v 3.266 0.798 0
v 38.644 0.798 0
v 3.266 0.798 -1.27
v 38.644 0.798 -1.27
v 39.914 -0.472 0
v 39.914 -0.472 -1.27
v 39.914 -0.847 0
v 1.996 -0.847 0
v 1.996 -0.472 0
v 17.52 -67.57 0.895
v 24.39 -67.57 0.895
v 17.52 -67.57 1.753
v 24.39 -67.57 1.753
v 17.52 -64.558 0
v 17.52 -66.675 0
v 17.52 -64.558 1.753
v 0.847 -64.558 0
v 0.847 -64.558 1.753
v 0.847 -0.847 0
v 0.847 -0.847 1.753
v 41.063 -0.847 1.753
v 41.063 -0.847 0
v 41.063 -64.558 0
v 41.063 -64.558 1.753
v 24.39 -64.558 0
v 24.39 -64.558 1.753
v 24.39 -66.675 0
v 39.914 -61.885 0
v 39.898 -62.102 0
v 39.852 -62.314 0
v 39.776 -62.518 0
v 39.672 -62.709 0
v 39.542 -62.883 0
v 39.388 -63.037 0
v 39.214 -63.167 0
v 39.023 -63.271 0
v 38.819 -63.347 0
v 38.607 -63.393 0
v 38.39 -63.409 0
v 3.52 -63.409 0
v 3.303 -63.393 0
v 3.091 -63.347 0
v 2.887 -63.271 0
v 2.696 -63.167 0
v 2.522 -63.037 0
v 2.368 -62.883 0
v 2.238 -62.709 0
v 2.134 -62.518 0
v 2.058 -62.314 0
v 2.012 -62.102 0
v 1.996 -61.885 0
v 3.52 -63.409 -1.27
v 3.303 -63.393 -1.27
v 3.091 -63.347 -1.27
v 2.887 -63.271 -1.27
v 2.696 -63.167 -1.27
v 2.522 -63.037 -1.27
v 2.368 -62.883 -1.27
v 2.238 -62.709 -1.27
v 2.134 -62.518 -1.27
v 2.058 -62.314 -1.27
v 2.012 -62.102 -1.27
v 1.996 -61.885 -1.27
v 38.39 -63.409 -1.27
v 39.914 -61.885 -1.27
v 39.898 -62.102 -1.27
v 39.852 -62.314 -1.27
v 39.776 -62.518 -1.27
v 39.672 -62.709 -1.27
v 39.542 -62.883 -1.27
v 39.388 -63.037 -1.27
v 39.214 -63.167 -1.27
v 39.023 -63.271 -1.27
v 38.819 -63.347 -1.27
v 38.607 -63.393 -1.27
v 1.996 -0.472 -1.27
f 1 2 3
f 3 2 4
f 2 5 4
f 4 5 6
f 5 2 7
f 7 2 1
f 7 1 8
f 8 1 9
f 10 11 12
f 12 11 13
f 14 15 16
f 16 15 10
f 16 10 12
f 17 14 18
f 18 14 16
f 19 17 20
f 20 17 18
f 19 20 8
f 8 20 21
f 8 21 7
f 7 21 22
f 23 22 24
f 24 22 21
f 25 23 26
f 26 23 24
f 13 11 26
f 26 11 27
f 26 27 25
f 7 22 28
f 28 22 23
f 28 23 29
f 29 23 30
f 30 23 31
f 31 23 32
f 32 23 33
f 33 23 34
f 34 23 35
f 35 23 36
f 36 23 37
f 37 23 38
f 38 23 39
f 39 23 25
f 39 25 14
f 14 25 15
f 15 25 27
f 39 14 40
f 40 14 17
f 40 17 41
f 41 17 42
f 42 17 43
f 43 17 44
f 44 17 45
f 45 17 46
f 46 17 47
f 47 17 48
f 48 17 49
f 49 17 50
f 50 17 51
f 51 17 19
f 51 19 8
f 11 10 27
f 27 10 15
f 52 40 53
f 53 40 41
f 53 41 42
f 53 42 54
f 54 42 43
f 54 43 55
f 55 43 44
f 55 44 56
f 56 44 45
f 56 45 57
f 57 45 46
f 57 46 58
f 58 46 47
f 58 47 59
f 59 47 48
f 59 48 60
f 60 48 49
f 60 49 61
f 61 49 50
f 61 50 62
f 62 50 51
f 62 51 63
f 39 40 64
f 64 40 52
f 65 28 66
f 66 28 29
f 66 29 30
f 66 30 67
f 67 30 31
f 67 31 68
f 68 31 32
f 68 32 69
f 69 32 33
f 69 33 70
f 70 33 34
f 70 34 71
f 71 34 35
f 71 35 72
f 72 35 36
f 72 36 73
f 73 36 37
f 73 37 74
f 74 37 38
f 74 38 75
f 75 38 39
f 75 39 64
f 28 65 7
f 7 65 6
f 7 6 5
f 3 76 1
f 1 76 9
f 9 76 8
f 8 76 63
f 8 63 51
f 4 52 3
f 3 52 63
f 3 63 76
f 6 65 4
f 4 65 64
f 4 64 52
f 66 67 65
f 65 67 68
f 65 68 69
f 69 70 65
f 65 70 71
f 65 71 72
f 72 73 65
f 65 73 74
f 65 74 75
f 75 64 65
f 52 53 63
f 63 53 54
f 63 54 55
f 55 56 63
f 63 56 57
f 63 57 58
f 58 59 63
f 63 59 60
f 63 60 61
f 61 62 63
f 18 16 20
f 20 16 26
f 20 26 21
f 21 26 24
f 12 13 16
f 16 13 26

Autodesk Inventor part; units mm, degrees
ref_plane "YZ Plane" through (0, 0, 0) normal (1, 0, 0) x (0, 1, 0)
ref_plane "XZ Plane" through (0, 0, 0) normal (0, 1, 0) x (-1, 0, 0)
ref_plane "XY Plane" through (0, 0, 0) normal (0, 0, 1) x (1, 0, 0)
sketch "Sketch1" plane through (0, 0, 0) normal (0, 0, 1) x (1, 0, 0)
  line L0 (24.765, -64.933) -> (24.765, -65.405)
  line L1 (41.91, -65.405) -> (24.765, -65.405)
  line L2 (41.91, 0) -> (41.91, -65.405)
  line L3 (0, 0) -> (41.91, 0)
  line L4 (0, -65.405) -> (0, 0)
  line L5 (17.145, -65.405) -> (0, -65.405)
  line L6 (17.145, -65.405) -> (17.145, -64.933)
  line L7 (17.145, -64.933) -> (0.472, -64.933)
  line L8 (0.472, -64.933) -> (0.472, -0.472)
  line L9 (0.472, -0.472) -> (41.438, -0.472)
  line L10 (41.438, -0.472) -> (41.438, -64.933)
  line L11 (41.438, -64.933) -> (24.765, -64.933)
  line L12 (17.145, -64.933) -> (17.145, -63.6597)
  line L13 (17.145, -63.6597) -> (3.0153, -63.6597)
  arc A0 (1.7453, -62.3897) -> (3.0153, -63.6597) centre (3.0153, -62.3897) ccw
  line L14 (1.7453, -62.3897) -> (1.7453, -10.7786)
  arc A1 (1.7453, -10.7786) -> (0.472, -9.5086) centre (0.4753, -10.7786) ccw
  line L15 (0.472, -64.933) -> (0.472, -9.5086)
  line L16 (17.145, -64.933) -> (0.472, -64.933)
  line L17 (24.765, -63.6597) -> (24.765, -64.933)
  line L18 (41.438, -64.933) -> (24.765, -64.933)
  line L19 (41.438, -9.5086) -> (41.438, -64.933)
  arc A2 (41.438, -9.5086) -> (40.1647, -10.7786) centre (41.4347, -10.7786) ccw
  line L20 (40.1647, -10.7786) -> (40.1647, -62.3897)
  arc A3 (38.8947, -63.6597) -> (40.1647, -62.3897) centre (38.8947, -62.3897) ccw
  line L21 (38.8947, -63.6597) -> (24.765, -63.6597)
  line L22 (24.765, -67.945) -> (17.145, -67.945)
  line L23 (24.765, -63.6597) -> (24.765, -67.945)
  line L24 (17.145, -63.6597) -> (24.765, -63.6597)
  line L25 (17.145, -67.945) -> (17.145, -63.6597)
  point P0 (4.318, 23.368)
extrude "Extrusion1" add sketch "Sketch1" along normal blind 1.7526 contours L17 L21 A3 L20 A2 L10 L11 | L0 L23 L22 L25 L6 L12 L24 L17 | L24 L13 A0 L14 A1 L8 L9 L10 A2 L20 A3 L21 | L12 L7 L8 A1 L14 A0 L13
sketch "Sketch2" plane through (0, 0, 0) normal (0, 0, -1) x (-1, 0, 0)
  line L0 (-41.438, -0.472) -> (-0.472, -0.472) projected
  line L1 (-41.438, -64.933) -> (-41.438, -0.472) projected
  line L2 (-24.765, -64.933) -> (-41.438, -64.933) projected
  line L3 (-24.765, -67.945) -> (-24.765, -64.933) projected
  line L4 (-17.145, -67.945) -> (-24.765, -67.945) projected
  line L5 (-17.145, -64.933) -> (-17.145, -67.945) projected
  line L6 (-0.472, -64.933) -> (-17.145, -64.933) projected
  line L7 (-0.472, -0.472) -> (-0.472, -64.933) projected
  line L8 (-39.914, -61.885) -> (-39.914, -0.472)
  line L9 (-1.996, -0.472) -> (-1.996, -61.885)
  line L10 (-3.52, -63.409) -> (-38.39, -63.409)
  arc A0 (-39.914, -61.885) -> (-38.39, -63.409) centre (-38.39, -61.885) ccw
  arc A1 (-3.52, -63.409) -> (-1.996, -61.885) centre (-3.52, -61.885) ccw
  line L11 (-41.438, -0.472) -> (-0.472, -0.472) projected
  line L12 (-4.536, 2.068) -> (-37.374, 2.068)
  line L13 (-1.996, -0.472) -> (-1.996, -0.472)
  line L14 (-37.374, 2.068) -> (-39.914, -0.472)
  line L15 (-4.536, 2.068) -> (-1.996, -0.472)
  point P0 (0, 0)
  point P1 (-39.914, 2.068)
  point P2 (-1.996, 2.068)
  dimension "d2" = 1.524
  dimension "d3" = 1.524
  dimension "d4" = 1.524
  dimension "d5" = 1.524
  dimension "d7" = 2.54
  dimension "d8" = 2.54
  dimension "d9" = 2.54
  dimension "d10" = 2.54
extrude "Extrusion2" add sketch "Sketch2" along normal blind 1.27 contours L14 L12 L15 L0 | L0 L9 A1 L10 A0 L8
chamfer "Chamfer1" distance 1.27 angle 45 1 edges at (20.955, -67.945, 0)
sketch "Sketch3" plane through (0, 0, 1.7526) normal (0, 0, 1) x (1, 0, 0)
  line L0 (41.438, -0.472) -> (0.472, -0.472) projected
  line L1 (0.472, -0.472) -> (0.472, -64.933) projected
  line L2 (0.472, -64.933) -> (17.145, -64.933) projected
  line L3 (17.145, -64.933) -> (17.145, -67.945) projected
  line L4 (17.145, -67.945) -> (24.765, -67.945) projected
  line L5 (24.765, -67.945) -> (24.765, -64.933) projected
  line L6 (24.765, -64.933) -> (41.438, -64.933) projected
  line L7 (41.438, -64.933) -> (41.438, -0.472) projected
  line L8 (41.063, -0.847) -> (0.847, -0.847)
  line L9 (0.847, -0.847) -> (0.847, -64.558)
  line L10 (0.847, -64.558) -> (17.52, -64.558)
  line L11 (17.52, -64.558) -> (17.52, -67.57)
  line L12 (17.52, -67.57) -> (24.39, -67.57)
  line L13 (24.39, -67.57) -> (24.39, -64.558)
  line L14 (24.39, -64.558) -> (41.063, -64.558)
  line L15 (41.063, -64.558) -> (41.063, -0.847)
  point P0 (0, 0)
extrude "Extrusion3" cut sketch "Sketch3" against normal up to surface (1.7526 mm away)
sketch "Sketch4" plane through (0, 0, 0) normal (0, 0, 1) x (1, 0, 0)
  line L0 (37.374, 2.068) -> (39.914, -0.472) projected
  line L1 (4.536, 2.068) -> (37.374, 2.068) projected
  line L2 (1.996, -0.472) -> (4.536, 2.068) projected
  line L3 (1.996, -0.472) -> (1.996, -0.847) projected
  line L4 (1.996, -0.847) -> (39.914, -0.847) projected
  line L5 (39.914, -0.847) -> (39.914, -0.472) projected
  line L6 (1.996, -0.472) -> (4.536, 2.068) projected
  line L7 (3.266, 0.798) -> (38.644, 0.798)
  line L8 (38.644, 0.798) -> (38.644, 2.068)
  line L9 (38.644, 2.068) -> (3.266, 2.068)
  line L10 (3.266, 2.068) -> (3.266, 0.798)
  point P0 (0, 0)
extrude "Extrusion4" cut sketch "Sketch4" against normal blind 1.27 contours L9 L8 L0 | L0 L7 L2 L1 | L2 L10 L9
equation "\"d8\" = d7"
equation "\"d9\" = d7"
equation "\"d10\" = d9"
properties part number "Main_Housing_Cap"
